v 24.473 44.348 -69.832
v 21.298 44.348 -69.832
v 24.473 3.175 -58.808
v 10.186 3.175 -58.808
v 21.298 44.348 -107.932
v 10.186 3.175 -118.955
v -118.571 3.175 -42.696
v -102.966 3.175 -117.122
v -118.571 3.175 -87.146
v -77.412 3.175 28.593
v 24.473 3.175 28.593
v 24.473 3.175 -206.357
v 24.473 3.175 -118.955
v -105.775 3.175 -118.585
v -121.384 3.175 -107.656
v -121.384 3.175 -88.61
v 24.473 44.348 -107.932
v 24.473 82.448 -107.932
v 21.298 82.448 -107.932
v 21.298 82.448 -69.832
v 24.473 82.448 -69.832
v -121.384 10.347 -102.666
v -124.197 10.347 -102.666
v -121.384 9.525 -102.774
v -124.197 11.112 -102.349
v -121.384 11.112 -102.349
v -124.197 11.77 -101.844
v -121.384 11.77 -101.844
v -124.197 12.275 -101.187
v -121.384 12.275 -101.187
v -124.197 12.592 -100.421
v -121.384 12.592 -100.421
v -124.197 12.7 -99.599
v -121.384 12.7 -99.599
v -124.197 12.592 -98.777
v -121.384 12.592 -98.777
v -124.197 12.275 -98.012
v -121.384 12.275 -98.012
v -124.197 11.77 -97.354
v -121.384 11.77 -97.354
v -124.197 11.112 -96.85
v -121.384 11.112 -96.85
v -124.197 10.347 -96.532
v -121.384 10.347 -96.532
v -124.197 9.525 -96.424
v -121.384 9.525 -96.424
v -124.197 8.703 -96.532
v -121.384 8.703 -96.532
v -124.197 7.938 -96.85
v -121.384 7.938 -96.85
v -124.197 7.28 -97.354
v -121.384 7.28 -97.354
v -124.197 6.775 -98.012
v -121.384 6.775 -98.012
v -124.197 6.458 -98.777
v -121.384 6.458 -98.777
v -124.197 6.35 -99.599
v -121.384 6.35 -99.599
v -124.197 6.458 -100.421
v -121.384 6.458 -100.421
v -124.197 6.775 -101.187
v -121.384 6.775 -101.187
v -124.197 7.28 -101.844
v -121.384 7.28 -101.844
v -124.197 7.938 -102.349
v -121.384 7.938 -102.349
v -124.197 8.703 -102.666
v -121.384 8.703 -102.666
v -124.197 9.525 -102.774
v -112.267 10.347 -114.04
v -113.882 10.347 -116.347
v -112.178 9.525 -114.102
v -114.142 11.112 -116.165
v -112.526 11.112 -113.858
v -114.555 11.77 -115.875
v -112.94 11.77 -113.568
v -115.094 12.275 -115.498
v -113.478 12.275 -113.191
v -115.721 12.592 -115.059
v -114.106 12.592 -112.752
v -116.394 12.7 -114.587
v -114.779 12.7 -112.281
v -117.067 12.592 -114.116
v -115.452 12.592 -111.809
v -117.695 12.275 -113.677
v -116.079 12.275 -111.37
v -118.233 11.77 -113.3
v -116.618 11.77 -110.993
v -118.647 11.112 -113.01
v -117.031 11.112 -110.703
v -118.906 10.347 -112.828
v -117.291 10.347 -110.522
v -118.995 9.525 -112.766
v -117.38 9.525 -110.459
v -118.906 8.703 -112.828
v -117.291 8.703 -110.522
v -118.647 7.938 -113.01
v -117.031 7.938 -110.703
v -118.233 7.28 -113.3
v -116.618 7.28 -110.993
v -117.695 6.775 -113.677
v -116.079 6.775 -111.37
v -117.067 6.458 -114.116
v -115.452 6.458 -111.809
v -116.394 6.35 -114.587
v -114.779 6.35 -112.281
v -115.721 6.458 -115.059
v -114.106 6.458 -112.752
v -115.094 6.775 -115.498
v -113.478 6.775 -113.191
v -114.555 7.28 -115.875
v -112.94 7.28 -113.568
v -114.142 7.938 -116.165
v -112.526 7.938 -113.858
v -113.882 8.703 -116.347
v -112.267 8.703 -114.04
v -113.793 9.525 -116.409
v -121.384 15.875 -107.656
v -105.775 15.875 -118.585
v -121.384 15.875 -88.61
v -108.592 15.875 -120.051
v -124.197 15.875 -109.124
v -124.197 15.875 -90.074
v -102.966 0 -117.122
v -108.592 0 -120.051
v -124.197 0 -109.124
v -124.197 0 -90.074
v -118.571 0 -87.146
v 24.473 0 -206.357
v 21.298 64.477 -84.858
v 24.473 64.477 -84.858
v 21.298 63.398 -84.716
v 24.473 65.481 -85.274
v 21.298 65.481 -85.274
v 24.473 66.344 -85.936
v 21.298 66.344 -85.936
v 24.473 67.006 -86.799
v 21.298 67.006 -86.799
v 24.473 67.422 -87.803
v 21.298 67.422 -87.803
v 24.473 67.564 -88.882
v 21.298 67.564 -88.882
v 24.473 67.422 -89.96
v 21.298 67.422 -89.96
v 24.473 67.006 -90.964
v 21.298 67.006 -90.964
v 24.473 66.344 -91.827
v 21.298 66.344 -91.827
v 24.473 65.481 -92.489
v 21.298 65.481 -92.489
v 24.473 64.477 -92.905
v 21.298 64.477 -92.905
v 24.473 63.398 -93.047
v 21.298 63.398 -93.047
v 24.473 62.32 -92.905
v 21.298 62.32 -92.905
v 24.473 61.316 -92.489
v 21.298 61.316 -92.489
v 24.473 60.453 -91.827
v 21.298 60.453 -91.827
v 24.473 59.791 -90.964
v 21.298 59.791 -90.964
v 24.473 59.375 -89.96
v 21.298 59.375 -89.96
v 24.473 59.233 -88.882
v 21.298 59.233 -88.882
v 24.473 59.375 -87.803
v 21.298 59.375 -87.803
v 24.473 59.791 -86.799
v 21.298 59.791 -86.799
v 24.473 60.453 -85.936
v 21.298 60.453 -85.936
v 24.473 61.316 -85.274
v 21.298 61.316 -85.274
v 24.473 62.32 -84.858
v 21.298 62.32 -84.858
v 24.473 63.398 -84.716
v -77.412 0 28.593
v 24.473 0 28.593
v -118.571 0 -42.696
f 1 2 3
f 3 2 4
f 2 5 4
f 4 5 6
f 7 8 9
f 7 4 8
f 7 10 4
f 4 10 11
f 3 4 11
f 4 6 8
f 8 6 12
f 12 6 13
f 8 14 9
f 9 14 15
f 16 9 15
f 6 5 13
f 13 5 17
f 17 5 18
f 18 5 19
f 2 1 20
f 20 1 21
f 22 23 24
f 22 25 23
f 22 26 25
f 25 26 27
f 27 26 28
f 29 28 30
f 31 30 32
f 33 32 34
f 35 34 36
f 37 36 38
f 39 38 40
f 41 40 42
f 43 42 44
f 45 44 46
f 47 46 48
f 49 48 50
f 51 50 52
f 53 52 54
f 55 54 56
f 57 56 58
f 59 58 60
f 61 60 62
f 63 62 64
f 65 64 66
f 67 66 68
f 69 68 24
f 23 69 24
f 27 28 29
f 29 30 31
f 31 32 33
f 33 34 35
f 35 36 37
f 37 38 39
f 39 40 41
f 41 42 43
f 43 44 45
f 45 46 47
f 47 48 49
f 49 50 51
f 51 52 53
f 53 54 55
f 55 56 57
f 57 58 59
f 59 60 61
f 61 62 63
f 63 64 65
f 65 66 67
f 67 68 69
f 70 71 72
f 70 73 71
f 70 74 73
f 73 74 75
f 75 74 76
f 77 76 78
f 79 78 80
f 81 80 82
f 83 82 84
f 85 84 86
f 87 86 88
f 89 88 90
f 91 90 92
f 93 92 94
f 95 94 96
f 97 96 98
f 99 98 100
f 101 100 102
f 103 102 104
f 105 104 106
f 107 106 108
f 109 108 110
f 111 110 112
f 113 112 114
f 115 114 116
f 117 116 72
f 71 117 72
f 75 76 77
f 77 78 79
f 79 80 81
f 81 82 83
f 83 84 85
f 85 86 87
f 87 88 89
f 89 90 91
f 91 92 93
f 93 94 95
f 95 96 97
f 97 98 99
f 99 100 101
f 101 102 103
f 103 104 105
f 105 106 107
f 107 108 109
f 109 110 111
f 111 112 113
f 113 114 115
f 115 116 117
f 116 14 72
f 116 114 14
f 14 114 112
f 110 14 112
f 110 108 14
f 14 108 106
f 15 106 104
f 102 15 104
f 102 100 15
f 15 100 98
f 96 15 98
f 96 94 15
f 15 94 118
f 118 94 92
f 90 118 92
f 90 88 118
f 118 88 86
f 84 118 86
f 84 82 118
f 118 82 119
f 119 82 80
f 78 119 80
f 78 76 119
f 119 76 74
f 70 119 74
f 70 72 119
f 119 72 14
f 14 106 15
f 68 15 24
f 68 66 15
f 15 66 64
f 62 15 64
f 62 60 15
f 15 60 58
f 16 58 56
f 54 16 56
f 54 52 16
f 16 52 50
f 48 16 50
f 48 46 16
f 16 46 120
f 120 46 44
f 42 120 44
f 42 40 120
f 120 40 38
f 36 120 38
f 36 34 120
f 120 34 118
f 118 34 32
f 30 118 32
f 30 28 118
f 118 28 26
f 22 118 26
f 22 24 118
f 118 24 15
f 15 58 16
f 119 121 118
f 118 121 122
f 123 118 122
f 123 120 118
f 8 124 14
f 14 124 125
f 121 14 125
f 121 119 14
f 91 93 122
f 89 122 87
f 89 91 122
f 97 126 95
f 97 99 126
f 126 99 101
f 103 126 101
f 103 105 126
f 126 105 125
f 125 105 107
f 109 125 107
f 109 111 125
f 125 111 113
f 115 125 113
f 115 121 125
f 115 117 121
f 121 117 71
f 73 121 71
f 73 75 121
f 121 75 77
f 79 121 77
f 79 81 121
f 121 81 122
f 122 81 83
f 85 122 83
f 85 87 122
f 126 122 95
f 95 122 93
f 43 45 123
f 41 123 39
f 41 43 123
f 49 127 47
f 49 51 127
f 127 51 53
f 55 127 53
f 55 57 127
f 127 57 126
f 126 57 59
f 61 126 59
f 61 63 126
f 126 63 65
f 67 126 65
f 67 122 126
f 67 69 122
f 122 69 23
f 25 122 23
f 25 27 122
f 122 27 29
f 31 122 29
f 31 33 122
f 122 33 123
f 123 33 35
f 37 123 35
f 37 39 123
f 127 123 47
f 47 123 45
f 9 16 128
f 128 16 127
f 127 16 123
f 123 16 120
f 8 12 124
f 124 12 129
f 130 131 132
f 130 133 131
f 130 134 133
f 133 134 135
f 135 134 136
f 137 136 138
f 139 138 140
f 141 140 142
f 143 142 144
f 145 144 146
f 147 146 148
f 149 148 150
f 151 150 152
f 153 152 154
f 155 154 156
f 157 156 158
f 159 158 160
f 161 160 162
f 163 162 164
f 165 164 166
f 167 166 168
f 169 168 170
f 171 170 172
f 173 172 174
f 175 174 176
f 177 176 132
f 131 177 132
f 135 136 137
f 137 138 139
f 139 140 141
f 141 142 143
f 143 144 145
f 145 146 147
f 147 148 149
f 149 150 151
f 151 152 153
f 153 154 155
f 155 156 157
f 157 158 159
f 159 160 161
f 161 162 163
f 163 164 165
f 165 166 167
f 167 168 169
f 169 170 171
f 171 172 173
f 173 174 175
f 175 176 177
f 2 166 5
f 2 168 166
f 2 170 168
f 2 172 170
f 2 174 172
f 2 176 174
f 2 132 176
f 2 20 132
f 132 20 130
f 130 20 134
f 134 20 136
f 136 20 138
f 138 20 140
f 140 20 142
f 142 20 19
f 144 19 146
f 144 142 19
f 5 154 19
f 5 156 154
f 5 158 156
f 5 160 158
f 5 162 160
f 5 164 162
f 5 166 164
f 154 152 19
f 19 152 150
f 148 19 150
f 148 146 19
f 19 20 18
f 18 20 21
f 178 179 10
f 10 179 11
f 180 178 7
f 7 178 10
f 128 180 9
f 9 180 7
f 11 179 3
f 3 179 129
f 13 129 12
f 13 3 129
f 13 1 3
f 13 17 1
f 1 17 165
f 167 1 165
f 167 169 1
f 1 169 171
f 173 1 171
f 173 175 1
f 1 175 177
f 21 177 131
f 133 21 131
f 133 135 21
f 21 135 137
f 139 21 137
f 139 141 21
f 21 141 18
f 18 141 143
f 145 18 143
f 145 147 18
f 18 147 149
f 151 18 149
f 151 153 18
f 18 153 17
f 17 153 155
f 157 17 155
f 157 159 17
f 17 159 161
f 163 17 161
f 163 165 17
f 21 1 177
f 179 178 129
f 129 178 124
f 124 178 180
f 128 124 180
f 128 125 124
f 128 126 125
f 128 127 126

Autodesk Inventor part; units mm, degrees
ref_plane "YZ Plane" through (0, 0, 0) normal (1, 0, 0) x (0, 1, 0)
ref_plane "XZ Plane" through (0, 0, 0) normal (0, 1, 0) x (-1, 0, 0)
ref_plane "XY Plane" through (0, 0, 0) normal (0, 0, 1) x (1, 0, 0)
sketch "Sketch1" plane through (0, 0, 0) normal (0, 1, 0) x (-1, 0, 0)
  line L0 (-24.4733, 28.5935) -> (-24.4733, -206.3565)
  line L1 (-24.4733, -206.3565) -> (118.5711, -106.1957)
  line L2 (-24.4733, -206.3565) -> (150.1517, -206.3565) construction
  line L3 (118.5711, -106.1957) -> (118.5711, -42.6957)
  line L4 (118.5711, -42.6957) -> (77.4122, 28.5935)
  line L5 (-24.4733, 28.5935) -> (77.4122, 28.5935)
  point P0 (0, 0)
  dimension "d0" = 234.95
  dimension "d1" = 174.625
  dimension "d2" = 35
  dimension "d3" = 63.5
  dimension "d4" = 150
extrude "Extrusion1" add sketch "Sketch1" along normal blind 3.175
sketch "Sketch2" plane through (0, 3.175, 0) normal (0, 1, 0) x (1, 0, 0)
  line L0 (-77.4122, -28.5935) -> (24.4733, -28.5935) projected
  line L1 (24.4733, -28.5935) -> (24.4733, 206.3565)
  line L2 (21.2983, 88.8815) -> (21.2983, 107.9315)
  line L3 (21.2983, 107.9315) -> (24.4733, 107.9315)
  line L4 (21.2983, 88.8815) -> (21.2983, 69.8315)
  line L5 (21.2983, 69.8315) -> (24.4733, 69.8315)
  point P0 (0, 0)
  dimension "d8" = 19.05
  dimension "d9" = 19.05
extrude "Extrusion2" add sketch "Sketch2" along normal blind 79.2734
sketch "Sketch3" plane through (24.4733, 0, 28.5935) normal (1, 0, 0) x (0, 0, -1)
  line L0 (136.525, 82.4484) -> (117.475, 82.4484)
  line L1 (117.475, 82.4484) -> (117.475, 63.3984)
  line L2 (117.475, 63.3984) -> (136.525, 63.3984)
  line L3 (136.525, 63.3984) -> (136.525, 82.4484)
  point P0 (28.5935, 0)
  dimension "d12" = 19.05
  dimension "d13" = 19.05
hole "Hole1" at (24.4733, 63.3984, -88.8815) direction (-1, 0, 0) diameter 8.3312 end through all
sketch "Sketch4" plane through (0, 3.175, 0) normal (0, 1, 0) x (1, 0, 0)
  line L0 (-102.9662, 117.1224) -> (-118.5711, 106.1957)
  line L1 (-118.5711, 87.1457) -> (-118.5711, 106.1957)
  line L2 (-124.1966, 109.1242) -> (-108.5917, 120.0508)
  line L3 (-124.1966, 109.1242) -> (-124.1966, 90.0742)
  line L4 (-102.9662, 117.1224) -> (-108.5917, 120.0508)
  line L5 (-118.5711, 87.1457) -> (-124.1966, 90.0742)
  point P0 (0, 0)
  dimension "d21" = 19.05
  dimension "d23" = 19.05
extrude "Extrusion3" add sketch "Sketch4" against normal blind 3.175
sketch "Sketch5" plane through (0, 3.175, 0) normal (0, 1, 0) x (1, 0, 0)
  line L0 (-108.5917, 120.0508) -> (-102.9662, 117.1224) projected
  line L1 (-124.1966, 109.1242) -> (-108.5917, 120.0508) projected
  line L2 (-124.1966, 90.0742) -> (-124.1966, 109.1242) projected
  line L3 (-118.5711, 87.1457) -> (-124.1966, 90.0742) projected
  line L4 (-124.1966, 90.0742) -> (-124.1966, 109.1242)
  line L5 (-124.1966, 109.1242) -> (-108.5917, 120.0508)
  line L6 (-108.5917, 120.0508) -> (-105.7755, 118.5848)
  line L7 (-105.7755, 118.5848) -> (-121.3838, 107.6557)
  line L8 (-121.3838, 107.6557) -> (-121.3838, 88.61)
  line L9 (-121.3838, 88.61) -> (-124.1966, 90.0742)
  point P0 (0, 0)
  dimension "d28" = 3.175
extrude "Extrusion4" add sketch "Sketch5" along normal blind 12.7
sketch "Sketch6" plane through (-108.5917, 0, -120.0508) normal (-0.5735764, 0, -0.819152) x (-0.819152, 0, 0.5735764)
  line L0 (19.05, 15.875) -> (19.05, 0) projected
  line L1 (0, 15.875) -> (19.05, 15.875)
  line L2 (9.525, 15.875) -> (9.525, 9.525)
  point P0 (-20.0948, 0)
  dimension "d31" = 6.35
hole "Hole2" at (-116.3942, 9.525, -114.5875) direction (0.5735764, 0, 0.819152) diameter 6.35 end through all
sketch "Sketch7" plane through (-124.1966, 0, -109.1242) normal (-1, 0, 0) x (0, 0, 1)
  line L0 (0, 15.875) -> (19.05, 15.875) projected
  line L1 (9.525, 15.875) -> (9.525, 9.525)
  point P0 (109.1242, 0)
  dimension "d39" = 6.35
hole "Hole3" at (-124.1966, 9.525, -99.5992) direction (1, 0, 0) diameter 6.35 depth 25.4 tip angle 118
sketch "Sketch8" plane through (21.2983, 3.175, -107.9315) normal (-1, 0, 0) x (0, 0, 1)
  line L0 (38.1, 0) -> (0, 0) projected
  line L1 (38.1, 0) -> (38.1, 79.2734) projected
  line L2 (0, 0) -> (0, 79.2734) projected
  line L3 (0, 41.1734) -> (38.1, 41.1734)
  line L4 (38.1, 41.1734) -> (38.1, 0)
  line L5 (38.1, 0) -> (0, 0)
  line L6 (0, 0) -> (0, 41.1734)
  point P0 (107.9315, -3.175)
  dimension "d47" = 38.1
extrude "Extrusion5" add sketch "Sketch8" along normal blind 25.4
sketch "Sketch9" plane through (21.2983, 82.4484, -69.8315) normal (0, 0, 1) x (1, 0, 0)
  line L0 (-25.4, -38.1) -> (3.175, -38.1)
  line L1 (3.175, -38.1) -> (3.175, -79.2734)
  line L2 (3.175, -79.2734) -> (-25.4, -79.2734)
  line L3 (-25.4, -79.2734) -> (-25.4, -38.1)
  point P0 (-21.2983, -82.4484)
extrude "Extrusion6" add sketch "Sketch9" along normal blind 25.4
sketch "Sketch13" plane through (24.4733, 0, 28.5935) normal (1, 0, 0) x (0, 0, -1)
  line L0 (98.425, 44.3484) -> (98.425, 82.4484) projected
  line L1 (147.5486, 3.175) -> (136.525, 44.3484)
  line L2 (147.5486, 3.175) -> (161.925, 3.175)
  line L3 (136.525, 44.3484) -> (161.925, 44.3484)
  line L4 (161.925, 44.3484) -> (161.925, 3.175)
  point P0 (28.5935, 0)
split_face "Split3"
sketch "Sketch14" plane through (24.4733, 0, 28.5935) normal (1, 0, 0) x (0, 0, -1)
  line L0 (161.925, 3.175) -> (234.95, 3.175) projected
  line L1 (136.525, 3.175) -> (147.5486, 3.175) projected
  line L2 (136.525, 44.3484) -> (136.525, 3.175)
  line L3 (136.525, 3.175) -> (147.5486, 3.175)
  line L4 (147.5486, 3.175) -> (136.525, 44.3484)
  point P0 (28.5935, 0)
  dimension "d73" = 11.0236
extrude "Extrusion8" add sketch "Sketch14" against normal blind 19.05
sketch "Sketch15" plane through (21.2983, 82.4484, -44.4315) normal (0, 0, 1) x (1, 0, 0)
  line L0 (0, -38.1) -> (-11.1125, -79.2734)
  line L1 (-11.1125, -79.2734) -> (-25.4, -79.2734)
  line L2 (-25.4, -79.2734) -> (-25.4, -38.1)
  line L3 (-25.4, -38.1) -> (0, -38.1)
  point P0 (-21.2983, -82.4484)
split body "Split4" sketch "Sketch15" result one side removed curves L0 L1 L2 L3 removed pieces at (13.4073, 17.0298, -77.7394)
sketch "Sketch16" plane through (24.4733, 0, 28.5935) normal (1, 0, 0) x (0, 0, -1)
  line L0 (87.4014, 3.175) -> (98.425, 44.3484)
  line L1 (87.4014, 3.175) -> (73.025, 3.175)
  line L2 (73.025, 3.175) -> (73.025, 44.3484)
  line L3 (73.025, 44.3484) -> (98.425, 44.3484)
  point P0 (28.5935, 0)
split body "Split5" sketch "Sketch16" result one side removed curves L3 L0 L1 L2 removed pieces at (18.0769, 30.4936, -57.6903)
properties part number "Right Chest"
